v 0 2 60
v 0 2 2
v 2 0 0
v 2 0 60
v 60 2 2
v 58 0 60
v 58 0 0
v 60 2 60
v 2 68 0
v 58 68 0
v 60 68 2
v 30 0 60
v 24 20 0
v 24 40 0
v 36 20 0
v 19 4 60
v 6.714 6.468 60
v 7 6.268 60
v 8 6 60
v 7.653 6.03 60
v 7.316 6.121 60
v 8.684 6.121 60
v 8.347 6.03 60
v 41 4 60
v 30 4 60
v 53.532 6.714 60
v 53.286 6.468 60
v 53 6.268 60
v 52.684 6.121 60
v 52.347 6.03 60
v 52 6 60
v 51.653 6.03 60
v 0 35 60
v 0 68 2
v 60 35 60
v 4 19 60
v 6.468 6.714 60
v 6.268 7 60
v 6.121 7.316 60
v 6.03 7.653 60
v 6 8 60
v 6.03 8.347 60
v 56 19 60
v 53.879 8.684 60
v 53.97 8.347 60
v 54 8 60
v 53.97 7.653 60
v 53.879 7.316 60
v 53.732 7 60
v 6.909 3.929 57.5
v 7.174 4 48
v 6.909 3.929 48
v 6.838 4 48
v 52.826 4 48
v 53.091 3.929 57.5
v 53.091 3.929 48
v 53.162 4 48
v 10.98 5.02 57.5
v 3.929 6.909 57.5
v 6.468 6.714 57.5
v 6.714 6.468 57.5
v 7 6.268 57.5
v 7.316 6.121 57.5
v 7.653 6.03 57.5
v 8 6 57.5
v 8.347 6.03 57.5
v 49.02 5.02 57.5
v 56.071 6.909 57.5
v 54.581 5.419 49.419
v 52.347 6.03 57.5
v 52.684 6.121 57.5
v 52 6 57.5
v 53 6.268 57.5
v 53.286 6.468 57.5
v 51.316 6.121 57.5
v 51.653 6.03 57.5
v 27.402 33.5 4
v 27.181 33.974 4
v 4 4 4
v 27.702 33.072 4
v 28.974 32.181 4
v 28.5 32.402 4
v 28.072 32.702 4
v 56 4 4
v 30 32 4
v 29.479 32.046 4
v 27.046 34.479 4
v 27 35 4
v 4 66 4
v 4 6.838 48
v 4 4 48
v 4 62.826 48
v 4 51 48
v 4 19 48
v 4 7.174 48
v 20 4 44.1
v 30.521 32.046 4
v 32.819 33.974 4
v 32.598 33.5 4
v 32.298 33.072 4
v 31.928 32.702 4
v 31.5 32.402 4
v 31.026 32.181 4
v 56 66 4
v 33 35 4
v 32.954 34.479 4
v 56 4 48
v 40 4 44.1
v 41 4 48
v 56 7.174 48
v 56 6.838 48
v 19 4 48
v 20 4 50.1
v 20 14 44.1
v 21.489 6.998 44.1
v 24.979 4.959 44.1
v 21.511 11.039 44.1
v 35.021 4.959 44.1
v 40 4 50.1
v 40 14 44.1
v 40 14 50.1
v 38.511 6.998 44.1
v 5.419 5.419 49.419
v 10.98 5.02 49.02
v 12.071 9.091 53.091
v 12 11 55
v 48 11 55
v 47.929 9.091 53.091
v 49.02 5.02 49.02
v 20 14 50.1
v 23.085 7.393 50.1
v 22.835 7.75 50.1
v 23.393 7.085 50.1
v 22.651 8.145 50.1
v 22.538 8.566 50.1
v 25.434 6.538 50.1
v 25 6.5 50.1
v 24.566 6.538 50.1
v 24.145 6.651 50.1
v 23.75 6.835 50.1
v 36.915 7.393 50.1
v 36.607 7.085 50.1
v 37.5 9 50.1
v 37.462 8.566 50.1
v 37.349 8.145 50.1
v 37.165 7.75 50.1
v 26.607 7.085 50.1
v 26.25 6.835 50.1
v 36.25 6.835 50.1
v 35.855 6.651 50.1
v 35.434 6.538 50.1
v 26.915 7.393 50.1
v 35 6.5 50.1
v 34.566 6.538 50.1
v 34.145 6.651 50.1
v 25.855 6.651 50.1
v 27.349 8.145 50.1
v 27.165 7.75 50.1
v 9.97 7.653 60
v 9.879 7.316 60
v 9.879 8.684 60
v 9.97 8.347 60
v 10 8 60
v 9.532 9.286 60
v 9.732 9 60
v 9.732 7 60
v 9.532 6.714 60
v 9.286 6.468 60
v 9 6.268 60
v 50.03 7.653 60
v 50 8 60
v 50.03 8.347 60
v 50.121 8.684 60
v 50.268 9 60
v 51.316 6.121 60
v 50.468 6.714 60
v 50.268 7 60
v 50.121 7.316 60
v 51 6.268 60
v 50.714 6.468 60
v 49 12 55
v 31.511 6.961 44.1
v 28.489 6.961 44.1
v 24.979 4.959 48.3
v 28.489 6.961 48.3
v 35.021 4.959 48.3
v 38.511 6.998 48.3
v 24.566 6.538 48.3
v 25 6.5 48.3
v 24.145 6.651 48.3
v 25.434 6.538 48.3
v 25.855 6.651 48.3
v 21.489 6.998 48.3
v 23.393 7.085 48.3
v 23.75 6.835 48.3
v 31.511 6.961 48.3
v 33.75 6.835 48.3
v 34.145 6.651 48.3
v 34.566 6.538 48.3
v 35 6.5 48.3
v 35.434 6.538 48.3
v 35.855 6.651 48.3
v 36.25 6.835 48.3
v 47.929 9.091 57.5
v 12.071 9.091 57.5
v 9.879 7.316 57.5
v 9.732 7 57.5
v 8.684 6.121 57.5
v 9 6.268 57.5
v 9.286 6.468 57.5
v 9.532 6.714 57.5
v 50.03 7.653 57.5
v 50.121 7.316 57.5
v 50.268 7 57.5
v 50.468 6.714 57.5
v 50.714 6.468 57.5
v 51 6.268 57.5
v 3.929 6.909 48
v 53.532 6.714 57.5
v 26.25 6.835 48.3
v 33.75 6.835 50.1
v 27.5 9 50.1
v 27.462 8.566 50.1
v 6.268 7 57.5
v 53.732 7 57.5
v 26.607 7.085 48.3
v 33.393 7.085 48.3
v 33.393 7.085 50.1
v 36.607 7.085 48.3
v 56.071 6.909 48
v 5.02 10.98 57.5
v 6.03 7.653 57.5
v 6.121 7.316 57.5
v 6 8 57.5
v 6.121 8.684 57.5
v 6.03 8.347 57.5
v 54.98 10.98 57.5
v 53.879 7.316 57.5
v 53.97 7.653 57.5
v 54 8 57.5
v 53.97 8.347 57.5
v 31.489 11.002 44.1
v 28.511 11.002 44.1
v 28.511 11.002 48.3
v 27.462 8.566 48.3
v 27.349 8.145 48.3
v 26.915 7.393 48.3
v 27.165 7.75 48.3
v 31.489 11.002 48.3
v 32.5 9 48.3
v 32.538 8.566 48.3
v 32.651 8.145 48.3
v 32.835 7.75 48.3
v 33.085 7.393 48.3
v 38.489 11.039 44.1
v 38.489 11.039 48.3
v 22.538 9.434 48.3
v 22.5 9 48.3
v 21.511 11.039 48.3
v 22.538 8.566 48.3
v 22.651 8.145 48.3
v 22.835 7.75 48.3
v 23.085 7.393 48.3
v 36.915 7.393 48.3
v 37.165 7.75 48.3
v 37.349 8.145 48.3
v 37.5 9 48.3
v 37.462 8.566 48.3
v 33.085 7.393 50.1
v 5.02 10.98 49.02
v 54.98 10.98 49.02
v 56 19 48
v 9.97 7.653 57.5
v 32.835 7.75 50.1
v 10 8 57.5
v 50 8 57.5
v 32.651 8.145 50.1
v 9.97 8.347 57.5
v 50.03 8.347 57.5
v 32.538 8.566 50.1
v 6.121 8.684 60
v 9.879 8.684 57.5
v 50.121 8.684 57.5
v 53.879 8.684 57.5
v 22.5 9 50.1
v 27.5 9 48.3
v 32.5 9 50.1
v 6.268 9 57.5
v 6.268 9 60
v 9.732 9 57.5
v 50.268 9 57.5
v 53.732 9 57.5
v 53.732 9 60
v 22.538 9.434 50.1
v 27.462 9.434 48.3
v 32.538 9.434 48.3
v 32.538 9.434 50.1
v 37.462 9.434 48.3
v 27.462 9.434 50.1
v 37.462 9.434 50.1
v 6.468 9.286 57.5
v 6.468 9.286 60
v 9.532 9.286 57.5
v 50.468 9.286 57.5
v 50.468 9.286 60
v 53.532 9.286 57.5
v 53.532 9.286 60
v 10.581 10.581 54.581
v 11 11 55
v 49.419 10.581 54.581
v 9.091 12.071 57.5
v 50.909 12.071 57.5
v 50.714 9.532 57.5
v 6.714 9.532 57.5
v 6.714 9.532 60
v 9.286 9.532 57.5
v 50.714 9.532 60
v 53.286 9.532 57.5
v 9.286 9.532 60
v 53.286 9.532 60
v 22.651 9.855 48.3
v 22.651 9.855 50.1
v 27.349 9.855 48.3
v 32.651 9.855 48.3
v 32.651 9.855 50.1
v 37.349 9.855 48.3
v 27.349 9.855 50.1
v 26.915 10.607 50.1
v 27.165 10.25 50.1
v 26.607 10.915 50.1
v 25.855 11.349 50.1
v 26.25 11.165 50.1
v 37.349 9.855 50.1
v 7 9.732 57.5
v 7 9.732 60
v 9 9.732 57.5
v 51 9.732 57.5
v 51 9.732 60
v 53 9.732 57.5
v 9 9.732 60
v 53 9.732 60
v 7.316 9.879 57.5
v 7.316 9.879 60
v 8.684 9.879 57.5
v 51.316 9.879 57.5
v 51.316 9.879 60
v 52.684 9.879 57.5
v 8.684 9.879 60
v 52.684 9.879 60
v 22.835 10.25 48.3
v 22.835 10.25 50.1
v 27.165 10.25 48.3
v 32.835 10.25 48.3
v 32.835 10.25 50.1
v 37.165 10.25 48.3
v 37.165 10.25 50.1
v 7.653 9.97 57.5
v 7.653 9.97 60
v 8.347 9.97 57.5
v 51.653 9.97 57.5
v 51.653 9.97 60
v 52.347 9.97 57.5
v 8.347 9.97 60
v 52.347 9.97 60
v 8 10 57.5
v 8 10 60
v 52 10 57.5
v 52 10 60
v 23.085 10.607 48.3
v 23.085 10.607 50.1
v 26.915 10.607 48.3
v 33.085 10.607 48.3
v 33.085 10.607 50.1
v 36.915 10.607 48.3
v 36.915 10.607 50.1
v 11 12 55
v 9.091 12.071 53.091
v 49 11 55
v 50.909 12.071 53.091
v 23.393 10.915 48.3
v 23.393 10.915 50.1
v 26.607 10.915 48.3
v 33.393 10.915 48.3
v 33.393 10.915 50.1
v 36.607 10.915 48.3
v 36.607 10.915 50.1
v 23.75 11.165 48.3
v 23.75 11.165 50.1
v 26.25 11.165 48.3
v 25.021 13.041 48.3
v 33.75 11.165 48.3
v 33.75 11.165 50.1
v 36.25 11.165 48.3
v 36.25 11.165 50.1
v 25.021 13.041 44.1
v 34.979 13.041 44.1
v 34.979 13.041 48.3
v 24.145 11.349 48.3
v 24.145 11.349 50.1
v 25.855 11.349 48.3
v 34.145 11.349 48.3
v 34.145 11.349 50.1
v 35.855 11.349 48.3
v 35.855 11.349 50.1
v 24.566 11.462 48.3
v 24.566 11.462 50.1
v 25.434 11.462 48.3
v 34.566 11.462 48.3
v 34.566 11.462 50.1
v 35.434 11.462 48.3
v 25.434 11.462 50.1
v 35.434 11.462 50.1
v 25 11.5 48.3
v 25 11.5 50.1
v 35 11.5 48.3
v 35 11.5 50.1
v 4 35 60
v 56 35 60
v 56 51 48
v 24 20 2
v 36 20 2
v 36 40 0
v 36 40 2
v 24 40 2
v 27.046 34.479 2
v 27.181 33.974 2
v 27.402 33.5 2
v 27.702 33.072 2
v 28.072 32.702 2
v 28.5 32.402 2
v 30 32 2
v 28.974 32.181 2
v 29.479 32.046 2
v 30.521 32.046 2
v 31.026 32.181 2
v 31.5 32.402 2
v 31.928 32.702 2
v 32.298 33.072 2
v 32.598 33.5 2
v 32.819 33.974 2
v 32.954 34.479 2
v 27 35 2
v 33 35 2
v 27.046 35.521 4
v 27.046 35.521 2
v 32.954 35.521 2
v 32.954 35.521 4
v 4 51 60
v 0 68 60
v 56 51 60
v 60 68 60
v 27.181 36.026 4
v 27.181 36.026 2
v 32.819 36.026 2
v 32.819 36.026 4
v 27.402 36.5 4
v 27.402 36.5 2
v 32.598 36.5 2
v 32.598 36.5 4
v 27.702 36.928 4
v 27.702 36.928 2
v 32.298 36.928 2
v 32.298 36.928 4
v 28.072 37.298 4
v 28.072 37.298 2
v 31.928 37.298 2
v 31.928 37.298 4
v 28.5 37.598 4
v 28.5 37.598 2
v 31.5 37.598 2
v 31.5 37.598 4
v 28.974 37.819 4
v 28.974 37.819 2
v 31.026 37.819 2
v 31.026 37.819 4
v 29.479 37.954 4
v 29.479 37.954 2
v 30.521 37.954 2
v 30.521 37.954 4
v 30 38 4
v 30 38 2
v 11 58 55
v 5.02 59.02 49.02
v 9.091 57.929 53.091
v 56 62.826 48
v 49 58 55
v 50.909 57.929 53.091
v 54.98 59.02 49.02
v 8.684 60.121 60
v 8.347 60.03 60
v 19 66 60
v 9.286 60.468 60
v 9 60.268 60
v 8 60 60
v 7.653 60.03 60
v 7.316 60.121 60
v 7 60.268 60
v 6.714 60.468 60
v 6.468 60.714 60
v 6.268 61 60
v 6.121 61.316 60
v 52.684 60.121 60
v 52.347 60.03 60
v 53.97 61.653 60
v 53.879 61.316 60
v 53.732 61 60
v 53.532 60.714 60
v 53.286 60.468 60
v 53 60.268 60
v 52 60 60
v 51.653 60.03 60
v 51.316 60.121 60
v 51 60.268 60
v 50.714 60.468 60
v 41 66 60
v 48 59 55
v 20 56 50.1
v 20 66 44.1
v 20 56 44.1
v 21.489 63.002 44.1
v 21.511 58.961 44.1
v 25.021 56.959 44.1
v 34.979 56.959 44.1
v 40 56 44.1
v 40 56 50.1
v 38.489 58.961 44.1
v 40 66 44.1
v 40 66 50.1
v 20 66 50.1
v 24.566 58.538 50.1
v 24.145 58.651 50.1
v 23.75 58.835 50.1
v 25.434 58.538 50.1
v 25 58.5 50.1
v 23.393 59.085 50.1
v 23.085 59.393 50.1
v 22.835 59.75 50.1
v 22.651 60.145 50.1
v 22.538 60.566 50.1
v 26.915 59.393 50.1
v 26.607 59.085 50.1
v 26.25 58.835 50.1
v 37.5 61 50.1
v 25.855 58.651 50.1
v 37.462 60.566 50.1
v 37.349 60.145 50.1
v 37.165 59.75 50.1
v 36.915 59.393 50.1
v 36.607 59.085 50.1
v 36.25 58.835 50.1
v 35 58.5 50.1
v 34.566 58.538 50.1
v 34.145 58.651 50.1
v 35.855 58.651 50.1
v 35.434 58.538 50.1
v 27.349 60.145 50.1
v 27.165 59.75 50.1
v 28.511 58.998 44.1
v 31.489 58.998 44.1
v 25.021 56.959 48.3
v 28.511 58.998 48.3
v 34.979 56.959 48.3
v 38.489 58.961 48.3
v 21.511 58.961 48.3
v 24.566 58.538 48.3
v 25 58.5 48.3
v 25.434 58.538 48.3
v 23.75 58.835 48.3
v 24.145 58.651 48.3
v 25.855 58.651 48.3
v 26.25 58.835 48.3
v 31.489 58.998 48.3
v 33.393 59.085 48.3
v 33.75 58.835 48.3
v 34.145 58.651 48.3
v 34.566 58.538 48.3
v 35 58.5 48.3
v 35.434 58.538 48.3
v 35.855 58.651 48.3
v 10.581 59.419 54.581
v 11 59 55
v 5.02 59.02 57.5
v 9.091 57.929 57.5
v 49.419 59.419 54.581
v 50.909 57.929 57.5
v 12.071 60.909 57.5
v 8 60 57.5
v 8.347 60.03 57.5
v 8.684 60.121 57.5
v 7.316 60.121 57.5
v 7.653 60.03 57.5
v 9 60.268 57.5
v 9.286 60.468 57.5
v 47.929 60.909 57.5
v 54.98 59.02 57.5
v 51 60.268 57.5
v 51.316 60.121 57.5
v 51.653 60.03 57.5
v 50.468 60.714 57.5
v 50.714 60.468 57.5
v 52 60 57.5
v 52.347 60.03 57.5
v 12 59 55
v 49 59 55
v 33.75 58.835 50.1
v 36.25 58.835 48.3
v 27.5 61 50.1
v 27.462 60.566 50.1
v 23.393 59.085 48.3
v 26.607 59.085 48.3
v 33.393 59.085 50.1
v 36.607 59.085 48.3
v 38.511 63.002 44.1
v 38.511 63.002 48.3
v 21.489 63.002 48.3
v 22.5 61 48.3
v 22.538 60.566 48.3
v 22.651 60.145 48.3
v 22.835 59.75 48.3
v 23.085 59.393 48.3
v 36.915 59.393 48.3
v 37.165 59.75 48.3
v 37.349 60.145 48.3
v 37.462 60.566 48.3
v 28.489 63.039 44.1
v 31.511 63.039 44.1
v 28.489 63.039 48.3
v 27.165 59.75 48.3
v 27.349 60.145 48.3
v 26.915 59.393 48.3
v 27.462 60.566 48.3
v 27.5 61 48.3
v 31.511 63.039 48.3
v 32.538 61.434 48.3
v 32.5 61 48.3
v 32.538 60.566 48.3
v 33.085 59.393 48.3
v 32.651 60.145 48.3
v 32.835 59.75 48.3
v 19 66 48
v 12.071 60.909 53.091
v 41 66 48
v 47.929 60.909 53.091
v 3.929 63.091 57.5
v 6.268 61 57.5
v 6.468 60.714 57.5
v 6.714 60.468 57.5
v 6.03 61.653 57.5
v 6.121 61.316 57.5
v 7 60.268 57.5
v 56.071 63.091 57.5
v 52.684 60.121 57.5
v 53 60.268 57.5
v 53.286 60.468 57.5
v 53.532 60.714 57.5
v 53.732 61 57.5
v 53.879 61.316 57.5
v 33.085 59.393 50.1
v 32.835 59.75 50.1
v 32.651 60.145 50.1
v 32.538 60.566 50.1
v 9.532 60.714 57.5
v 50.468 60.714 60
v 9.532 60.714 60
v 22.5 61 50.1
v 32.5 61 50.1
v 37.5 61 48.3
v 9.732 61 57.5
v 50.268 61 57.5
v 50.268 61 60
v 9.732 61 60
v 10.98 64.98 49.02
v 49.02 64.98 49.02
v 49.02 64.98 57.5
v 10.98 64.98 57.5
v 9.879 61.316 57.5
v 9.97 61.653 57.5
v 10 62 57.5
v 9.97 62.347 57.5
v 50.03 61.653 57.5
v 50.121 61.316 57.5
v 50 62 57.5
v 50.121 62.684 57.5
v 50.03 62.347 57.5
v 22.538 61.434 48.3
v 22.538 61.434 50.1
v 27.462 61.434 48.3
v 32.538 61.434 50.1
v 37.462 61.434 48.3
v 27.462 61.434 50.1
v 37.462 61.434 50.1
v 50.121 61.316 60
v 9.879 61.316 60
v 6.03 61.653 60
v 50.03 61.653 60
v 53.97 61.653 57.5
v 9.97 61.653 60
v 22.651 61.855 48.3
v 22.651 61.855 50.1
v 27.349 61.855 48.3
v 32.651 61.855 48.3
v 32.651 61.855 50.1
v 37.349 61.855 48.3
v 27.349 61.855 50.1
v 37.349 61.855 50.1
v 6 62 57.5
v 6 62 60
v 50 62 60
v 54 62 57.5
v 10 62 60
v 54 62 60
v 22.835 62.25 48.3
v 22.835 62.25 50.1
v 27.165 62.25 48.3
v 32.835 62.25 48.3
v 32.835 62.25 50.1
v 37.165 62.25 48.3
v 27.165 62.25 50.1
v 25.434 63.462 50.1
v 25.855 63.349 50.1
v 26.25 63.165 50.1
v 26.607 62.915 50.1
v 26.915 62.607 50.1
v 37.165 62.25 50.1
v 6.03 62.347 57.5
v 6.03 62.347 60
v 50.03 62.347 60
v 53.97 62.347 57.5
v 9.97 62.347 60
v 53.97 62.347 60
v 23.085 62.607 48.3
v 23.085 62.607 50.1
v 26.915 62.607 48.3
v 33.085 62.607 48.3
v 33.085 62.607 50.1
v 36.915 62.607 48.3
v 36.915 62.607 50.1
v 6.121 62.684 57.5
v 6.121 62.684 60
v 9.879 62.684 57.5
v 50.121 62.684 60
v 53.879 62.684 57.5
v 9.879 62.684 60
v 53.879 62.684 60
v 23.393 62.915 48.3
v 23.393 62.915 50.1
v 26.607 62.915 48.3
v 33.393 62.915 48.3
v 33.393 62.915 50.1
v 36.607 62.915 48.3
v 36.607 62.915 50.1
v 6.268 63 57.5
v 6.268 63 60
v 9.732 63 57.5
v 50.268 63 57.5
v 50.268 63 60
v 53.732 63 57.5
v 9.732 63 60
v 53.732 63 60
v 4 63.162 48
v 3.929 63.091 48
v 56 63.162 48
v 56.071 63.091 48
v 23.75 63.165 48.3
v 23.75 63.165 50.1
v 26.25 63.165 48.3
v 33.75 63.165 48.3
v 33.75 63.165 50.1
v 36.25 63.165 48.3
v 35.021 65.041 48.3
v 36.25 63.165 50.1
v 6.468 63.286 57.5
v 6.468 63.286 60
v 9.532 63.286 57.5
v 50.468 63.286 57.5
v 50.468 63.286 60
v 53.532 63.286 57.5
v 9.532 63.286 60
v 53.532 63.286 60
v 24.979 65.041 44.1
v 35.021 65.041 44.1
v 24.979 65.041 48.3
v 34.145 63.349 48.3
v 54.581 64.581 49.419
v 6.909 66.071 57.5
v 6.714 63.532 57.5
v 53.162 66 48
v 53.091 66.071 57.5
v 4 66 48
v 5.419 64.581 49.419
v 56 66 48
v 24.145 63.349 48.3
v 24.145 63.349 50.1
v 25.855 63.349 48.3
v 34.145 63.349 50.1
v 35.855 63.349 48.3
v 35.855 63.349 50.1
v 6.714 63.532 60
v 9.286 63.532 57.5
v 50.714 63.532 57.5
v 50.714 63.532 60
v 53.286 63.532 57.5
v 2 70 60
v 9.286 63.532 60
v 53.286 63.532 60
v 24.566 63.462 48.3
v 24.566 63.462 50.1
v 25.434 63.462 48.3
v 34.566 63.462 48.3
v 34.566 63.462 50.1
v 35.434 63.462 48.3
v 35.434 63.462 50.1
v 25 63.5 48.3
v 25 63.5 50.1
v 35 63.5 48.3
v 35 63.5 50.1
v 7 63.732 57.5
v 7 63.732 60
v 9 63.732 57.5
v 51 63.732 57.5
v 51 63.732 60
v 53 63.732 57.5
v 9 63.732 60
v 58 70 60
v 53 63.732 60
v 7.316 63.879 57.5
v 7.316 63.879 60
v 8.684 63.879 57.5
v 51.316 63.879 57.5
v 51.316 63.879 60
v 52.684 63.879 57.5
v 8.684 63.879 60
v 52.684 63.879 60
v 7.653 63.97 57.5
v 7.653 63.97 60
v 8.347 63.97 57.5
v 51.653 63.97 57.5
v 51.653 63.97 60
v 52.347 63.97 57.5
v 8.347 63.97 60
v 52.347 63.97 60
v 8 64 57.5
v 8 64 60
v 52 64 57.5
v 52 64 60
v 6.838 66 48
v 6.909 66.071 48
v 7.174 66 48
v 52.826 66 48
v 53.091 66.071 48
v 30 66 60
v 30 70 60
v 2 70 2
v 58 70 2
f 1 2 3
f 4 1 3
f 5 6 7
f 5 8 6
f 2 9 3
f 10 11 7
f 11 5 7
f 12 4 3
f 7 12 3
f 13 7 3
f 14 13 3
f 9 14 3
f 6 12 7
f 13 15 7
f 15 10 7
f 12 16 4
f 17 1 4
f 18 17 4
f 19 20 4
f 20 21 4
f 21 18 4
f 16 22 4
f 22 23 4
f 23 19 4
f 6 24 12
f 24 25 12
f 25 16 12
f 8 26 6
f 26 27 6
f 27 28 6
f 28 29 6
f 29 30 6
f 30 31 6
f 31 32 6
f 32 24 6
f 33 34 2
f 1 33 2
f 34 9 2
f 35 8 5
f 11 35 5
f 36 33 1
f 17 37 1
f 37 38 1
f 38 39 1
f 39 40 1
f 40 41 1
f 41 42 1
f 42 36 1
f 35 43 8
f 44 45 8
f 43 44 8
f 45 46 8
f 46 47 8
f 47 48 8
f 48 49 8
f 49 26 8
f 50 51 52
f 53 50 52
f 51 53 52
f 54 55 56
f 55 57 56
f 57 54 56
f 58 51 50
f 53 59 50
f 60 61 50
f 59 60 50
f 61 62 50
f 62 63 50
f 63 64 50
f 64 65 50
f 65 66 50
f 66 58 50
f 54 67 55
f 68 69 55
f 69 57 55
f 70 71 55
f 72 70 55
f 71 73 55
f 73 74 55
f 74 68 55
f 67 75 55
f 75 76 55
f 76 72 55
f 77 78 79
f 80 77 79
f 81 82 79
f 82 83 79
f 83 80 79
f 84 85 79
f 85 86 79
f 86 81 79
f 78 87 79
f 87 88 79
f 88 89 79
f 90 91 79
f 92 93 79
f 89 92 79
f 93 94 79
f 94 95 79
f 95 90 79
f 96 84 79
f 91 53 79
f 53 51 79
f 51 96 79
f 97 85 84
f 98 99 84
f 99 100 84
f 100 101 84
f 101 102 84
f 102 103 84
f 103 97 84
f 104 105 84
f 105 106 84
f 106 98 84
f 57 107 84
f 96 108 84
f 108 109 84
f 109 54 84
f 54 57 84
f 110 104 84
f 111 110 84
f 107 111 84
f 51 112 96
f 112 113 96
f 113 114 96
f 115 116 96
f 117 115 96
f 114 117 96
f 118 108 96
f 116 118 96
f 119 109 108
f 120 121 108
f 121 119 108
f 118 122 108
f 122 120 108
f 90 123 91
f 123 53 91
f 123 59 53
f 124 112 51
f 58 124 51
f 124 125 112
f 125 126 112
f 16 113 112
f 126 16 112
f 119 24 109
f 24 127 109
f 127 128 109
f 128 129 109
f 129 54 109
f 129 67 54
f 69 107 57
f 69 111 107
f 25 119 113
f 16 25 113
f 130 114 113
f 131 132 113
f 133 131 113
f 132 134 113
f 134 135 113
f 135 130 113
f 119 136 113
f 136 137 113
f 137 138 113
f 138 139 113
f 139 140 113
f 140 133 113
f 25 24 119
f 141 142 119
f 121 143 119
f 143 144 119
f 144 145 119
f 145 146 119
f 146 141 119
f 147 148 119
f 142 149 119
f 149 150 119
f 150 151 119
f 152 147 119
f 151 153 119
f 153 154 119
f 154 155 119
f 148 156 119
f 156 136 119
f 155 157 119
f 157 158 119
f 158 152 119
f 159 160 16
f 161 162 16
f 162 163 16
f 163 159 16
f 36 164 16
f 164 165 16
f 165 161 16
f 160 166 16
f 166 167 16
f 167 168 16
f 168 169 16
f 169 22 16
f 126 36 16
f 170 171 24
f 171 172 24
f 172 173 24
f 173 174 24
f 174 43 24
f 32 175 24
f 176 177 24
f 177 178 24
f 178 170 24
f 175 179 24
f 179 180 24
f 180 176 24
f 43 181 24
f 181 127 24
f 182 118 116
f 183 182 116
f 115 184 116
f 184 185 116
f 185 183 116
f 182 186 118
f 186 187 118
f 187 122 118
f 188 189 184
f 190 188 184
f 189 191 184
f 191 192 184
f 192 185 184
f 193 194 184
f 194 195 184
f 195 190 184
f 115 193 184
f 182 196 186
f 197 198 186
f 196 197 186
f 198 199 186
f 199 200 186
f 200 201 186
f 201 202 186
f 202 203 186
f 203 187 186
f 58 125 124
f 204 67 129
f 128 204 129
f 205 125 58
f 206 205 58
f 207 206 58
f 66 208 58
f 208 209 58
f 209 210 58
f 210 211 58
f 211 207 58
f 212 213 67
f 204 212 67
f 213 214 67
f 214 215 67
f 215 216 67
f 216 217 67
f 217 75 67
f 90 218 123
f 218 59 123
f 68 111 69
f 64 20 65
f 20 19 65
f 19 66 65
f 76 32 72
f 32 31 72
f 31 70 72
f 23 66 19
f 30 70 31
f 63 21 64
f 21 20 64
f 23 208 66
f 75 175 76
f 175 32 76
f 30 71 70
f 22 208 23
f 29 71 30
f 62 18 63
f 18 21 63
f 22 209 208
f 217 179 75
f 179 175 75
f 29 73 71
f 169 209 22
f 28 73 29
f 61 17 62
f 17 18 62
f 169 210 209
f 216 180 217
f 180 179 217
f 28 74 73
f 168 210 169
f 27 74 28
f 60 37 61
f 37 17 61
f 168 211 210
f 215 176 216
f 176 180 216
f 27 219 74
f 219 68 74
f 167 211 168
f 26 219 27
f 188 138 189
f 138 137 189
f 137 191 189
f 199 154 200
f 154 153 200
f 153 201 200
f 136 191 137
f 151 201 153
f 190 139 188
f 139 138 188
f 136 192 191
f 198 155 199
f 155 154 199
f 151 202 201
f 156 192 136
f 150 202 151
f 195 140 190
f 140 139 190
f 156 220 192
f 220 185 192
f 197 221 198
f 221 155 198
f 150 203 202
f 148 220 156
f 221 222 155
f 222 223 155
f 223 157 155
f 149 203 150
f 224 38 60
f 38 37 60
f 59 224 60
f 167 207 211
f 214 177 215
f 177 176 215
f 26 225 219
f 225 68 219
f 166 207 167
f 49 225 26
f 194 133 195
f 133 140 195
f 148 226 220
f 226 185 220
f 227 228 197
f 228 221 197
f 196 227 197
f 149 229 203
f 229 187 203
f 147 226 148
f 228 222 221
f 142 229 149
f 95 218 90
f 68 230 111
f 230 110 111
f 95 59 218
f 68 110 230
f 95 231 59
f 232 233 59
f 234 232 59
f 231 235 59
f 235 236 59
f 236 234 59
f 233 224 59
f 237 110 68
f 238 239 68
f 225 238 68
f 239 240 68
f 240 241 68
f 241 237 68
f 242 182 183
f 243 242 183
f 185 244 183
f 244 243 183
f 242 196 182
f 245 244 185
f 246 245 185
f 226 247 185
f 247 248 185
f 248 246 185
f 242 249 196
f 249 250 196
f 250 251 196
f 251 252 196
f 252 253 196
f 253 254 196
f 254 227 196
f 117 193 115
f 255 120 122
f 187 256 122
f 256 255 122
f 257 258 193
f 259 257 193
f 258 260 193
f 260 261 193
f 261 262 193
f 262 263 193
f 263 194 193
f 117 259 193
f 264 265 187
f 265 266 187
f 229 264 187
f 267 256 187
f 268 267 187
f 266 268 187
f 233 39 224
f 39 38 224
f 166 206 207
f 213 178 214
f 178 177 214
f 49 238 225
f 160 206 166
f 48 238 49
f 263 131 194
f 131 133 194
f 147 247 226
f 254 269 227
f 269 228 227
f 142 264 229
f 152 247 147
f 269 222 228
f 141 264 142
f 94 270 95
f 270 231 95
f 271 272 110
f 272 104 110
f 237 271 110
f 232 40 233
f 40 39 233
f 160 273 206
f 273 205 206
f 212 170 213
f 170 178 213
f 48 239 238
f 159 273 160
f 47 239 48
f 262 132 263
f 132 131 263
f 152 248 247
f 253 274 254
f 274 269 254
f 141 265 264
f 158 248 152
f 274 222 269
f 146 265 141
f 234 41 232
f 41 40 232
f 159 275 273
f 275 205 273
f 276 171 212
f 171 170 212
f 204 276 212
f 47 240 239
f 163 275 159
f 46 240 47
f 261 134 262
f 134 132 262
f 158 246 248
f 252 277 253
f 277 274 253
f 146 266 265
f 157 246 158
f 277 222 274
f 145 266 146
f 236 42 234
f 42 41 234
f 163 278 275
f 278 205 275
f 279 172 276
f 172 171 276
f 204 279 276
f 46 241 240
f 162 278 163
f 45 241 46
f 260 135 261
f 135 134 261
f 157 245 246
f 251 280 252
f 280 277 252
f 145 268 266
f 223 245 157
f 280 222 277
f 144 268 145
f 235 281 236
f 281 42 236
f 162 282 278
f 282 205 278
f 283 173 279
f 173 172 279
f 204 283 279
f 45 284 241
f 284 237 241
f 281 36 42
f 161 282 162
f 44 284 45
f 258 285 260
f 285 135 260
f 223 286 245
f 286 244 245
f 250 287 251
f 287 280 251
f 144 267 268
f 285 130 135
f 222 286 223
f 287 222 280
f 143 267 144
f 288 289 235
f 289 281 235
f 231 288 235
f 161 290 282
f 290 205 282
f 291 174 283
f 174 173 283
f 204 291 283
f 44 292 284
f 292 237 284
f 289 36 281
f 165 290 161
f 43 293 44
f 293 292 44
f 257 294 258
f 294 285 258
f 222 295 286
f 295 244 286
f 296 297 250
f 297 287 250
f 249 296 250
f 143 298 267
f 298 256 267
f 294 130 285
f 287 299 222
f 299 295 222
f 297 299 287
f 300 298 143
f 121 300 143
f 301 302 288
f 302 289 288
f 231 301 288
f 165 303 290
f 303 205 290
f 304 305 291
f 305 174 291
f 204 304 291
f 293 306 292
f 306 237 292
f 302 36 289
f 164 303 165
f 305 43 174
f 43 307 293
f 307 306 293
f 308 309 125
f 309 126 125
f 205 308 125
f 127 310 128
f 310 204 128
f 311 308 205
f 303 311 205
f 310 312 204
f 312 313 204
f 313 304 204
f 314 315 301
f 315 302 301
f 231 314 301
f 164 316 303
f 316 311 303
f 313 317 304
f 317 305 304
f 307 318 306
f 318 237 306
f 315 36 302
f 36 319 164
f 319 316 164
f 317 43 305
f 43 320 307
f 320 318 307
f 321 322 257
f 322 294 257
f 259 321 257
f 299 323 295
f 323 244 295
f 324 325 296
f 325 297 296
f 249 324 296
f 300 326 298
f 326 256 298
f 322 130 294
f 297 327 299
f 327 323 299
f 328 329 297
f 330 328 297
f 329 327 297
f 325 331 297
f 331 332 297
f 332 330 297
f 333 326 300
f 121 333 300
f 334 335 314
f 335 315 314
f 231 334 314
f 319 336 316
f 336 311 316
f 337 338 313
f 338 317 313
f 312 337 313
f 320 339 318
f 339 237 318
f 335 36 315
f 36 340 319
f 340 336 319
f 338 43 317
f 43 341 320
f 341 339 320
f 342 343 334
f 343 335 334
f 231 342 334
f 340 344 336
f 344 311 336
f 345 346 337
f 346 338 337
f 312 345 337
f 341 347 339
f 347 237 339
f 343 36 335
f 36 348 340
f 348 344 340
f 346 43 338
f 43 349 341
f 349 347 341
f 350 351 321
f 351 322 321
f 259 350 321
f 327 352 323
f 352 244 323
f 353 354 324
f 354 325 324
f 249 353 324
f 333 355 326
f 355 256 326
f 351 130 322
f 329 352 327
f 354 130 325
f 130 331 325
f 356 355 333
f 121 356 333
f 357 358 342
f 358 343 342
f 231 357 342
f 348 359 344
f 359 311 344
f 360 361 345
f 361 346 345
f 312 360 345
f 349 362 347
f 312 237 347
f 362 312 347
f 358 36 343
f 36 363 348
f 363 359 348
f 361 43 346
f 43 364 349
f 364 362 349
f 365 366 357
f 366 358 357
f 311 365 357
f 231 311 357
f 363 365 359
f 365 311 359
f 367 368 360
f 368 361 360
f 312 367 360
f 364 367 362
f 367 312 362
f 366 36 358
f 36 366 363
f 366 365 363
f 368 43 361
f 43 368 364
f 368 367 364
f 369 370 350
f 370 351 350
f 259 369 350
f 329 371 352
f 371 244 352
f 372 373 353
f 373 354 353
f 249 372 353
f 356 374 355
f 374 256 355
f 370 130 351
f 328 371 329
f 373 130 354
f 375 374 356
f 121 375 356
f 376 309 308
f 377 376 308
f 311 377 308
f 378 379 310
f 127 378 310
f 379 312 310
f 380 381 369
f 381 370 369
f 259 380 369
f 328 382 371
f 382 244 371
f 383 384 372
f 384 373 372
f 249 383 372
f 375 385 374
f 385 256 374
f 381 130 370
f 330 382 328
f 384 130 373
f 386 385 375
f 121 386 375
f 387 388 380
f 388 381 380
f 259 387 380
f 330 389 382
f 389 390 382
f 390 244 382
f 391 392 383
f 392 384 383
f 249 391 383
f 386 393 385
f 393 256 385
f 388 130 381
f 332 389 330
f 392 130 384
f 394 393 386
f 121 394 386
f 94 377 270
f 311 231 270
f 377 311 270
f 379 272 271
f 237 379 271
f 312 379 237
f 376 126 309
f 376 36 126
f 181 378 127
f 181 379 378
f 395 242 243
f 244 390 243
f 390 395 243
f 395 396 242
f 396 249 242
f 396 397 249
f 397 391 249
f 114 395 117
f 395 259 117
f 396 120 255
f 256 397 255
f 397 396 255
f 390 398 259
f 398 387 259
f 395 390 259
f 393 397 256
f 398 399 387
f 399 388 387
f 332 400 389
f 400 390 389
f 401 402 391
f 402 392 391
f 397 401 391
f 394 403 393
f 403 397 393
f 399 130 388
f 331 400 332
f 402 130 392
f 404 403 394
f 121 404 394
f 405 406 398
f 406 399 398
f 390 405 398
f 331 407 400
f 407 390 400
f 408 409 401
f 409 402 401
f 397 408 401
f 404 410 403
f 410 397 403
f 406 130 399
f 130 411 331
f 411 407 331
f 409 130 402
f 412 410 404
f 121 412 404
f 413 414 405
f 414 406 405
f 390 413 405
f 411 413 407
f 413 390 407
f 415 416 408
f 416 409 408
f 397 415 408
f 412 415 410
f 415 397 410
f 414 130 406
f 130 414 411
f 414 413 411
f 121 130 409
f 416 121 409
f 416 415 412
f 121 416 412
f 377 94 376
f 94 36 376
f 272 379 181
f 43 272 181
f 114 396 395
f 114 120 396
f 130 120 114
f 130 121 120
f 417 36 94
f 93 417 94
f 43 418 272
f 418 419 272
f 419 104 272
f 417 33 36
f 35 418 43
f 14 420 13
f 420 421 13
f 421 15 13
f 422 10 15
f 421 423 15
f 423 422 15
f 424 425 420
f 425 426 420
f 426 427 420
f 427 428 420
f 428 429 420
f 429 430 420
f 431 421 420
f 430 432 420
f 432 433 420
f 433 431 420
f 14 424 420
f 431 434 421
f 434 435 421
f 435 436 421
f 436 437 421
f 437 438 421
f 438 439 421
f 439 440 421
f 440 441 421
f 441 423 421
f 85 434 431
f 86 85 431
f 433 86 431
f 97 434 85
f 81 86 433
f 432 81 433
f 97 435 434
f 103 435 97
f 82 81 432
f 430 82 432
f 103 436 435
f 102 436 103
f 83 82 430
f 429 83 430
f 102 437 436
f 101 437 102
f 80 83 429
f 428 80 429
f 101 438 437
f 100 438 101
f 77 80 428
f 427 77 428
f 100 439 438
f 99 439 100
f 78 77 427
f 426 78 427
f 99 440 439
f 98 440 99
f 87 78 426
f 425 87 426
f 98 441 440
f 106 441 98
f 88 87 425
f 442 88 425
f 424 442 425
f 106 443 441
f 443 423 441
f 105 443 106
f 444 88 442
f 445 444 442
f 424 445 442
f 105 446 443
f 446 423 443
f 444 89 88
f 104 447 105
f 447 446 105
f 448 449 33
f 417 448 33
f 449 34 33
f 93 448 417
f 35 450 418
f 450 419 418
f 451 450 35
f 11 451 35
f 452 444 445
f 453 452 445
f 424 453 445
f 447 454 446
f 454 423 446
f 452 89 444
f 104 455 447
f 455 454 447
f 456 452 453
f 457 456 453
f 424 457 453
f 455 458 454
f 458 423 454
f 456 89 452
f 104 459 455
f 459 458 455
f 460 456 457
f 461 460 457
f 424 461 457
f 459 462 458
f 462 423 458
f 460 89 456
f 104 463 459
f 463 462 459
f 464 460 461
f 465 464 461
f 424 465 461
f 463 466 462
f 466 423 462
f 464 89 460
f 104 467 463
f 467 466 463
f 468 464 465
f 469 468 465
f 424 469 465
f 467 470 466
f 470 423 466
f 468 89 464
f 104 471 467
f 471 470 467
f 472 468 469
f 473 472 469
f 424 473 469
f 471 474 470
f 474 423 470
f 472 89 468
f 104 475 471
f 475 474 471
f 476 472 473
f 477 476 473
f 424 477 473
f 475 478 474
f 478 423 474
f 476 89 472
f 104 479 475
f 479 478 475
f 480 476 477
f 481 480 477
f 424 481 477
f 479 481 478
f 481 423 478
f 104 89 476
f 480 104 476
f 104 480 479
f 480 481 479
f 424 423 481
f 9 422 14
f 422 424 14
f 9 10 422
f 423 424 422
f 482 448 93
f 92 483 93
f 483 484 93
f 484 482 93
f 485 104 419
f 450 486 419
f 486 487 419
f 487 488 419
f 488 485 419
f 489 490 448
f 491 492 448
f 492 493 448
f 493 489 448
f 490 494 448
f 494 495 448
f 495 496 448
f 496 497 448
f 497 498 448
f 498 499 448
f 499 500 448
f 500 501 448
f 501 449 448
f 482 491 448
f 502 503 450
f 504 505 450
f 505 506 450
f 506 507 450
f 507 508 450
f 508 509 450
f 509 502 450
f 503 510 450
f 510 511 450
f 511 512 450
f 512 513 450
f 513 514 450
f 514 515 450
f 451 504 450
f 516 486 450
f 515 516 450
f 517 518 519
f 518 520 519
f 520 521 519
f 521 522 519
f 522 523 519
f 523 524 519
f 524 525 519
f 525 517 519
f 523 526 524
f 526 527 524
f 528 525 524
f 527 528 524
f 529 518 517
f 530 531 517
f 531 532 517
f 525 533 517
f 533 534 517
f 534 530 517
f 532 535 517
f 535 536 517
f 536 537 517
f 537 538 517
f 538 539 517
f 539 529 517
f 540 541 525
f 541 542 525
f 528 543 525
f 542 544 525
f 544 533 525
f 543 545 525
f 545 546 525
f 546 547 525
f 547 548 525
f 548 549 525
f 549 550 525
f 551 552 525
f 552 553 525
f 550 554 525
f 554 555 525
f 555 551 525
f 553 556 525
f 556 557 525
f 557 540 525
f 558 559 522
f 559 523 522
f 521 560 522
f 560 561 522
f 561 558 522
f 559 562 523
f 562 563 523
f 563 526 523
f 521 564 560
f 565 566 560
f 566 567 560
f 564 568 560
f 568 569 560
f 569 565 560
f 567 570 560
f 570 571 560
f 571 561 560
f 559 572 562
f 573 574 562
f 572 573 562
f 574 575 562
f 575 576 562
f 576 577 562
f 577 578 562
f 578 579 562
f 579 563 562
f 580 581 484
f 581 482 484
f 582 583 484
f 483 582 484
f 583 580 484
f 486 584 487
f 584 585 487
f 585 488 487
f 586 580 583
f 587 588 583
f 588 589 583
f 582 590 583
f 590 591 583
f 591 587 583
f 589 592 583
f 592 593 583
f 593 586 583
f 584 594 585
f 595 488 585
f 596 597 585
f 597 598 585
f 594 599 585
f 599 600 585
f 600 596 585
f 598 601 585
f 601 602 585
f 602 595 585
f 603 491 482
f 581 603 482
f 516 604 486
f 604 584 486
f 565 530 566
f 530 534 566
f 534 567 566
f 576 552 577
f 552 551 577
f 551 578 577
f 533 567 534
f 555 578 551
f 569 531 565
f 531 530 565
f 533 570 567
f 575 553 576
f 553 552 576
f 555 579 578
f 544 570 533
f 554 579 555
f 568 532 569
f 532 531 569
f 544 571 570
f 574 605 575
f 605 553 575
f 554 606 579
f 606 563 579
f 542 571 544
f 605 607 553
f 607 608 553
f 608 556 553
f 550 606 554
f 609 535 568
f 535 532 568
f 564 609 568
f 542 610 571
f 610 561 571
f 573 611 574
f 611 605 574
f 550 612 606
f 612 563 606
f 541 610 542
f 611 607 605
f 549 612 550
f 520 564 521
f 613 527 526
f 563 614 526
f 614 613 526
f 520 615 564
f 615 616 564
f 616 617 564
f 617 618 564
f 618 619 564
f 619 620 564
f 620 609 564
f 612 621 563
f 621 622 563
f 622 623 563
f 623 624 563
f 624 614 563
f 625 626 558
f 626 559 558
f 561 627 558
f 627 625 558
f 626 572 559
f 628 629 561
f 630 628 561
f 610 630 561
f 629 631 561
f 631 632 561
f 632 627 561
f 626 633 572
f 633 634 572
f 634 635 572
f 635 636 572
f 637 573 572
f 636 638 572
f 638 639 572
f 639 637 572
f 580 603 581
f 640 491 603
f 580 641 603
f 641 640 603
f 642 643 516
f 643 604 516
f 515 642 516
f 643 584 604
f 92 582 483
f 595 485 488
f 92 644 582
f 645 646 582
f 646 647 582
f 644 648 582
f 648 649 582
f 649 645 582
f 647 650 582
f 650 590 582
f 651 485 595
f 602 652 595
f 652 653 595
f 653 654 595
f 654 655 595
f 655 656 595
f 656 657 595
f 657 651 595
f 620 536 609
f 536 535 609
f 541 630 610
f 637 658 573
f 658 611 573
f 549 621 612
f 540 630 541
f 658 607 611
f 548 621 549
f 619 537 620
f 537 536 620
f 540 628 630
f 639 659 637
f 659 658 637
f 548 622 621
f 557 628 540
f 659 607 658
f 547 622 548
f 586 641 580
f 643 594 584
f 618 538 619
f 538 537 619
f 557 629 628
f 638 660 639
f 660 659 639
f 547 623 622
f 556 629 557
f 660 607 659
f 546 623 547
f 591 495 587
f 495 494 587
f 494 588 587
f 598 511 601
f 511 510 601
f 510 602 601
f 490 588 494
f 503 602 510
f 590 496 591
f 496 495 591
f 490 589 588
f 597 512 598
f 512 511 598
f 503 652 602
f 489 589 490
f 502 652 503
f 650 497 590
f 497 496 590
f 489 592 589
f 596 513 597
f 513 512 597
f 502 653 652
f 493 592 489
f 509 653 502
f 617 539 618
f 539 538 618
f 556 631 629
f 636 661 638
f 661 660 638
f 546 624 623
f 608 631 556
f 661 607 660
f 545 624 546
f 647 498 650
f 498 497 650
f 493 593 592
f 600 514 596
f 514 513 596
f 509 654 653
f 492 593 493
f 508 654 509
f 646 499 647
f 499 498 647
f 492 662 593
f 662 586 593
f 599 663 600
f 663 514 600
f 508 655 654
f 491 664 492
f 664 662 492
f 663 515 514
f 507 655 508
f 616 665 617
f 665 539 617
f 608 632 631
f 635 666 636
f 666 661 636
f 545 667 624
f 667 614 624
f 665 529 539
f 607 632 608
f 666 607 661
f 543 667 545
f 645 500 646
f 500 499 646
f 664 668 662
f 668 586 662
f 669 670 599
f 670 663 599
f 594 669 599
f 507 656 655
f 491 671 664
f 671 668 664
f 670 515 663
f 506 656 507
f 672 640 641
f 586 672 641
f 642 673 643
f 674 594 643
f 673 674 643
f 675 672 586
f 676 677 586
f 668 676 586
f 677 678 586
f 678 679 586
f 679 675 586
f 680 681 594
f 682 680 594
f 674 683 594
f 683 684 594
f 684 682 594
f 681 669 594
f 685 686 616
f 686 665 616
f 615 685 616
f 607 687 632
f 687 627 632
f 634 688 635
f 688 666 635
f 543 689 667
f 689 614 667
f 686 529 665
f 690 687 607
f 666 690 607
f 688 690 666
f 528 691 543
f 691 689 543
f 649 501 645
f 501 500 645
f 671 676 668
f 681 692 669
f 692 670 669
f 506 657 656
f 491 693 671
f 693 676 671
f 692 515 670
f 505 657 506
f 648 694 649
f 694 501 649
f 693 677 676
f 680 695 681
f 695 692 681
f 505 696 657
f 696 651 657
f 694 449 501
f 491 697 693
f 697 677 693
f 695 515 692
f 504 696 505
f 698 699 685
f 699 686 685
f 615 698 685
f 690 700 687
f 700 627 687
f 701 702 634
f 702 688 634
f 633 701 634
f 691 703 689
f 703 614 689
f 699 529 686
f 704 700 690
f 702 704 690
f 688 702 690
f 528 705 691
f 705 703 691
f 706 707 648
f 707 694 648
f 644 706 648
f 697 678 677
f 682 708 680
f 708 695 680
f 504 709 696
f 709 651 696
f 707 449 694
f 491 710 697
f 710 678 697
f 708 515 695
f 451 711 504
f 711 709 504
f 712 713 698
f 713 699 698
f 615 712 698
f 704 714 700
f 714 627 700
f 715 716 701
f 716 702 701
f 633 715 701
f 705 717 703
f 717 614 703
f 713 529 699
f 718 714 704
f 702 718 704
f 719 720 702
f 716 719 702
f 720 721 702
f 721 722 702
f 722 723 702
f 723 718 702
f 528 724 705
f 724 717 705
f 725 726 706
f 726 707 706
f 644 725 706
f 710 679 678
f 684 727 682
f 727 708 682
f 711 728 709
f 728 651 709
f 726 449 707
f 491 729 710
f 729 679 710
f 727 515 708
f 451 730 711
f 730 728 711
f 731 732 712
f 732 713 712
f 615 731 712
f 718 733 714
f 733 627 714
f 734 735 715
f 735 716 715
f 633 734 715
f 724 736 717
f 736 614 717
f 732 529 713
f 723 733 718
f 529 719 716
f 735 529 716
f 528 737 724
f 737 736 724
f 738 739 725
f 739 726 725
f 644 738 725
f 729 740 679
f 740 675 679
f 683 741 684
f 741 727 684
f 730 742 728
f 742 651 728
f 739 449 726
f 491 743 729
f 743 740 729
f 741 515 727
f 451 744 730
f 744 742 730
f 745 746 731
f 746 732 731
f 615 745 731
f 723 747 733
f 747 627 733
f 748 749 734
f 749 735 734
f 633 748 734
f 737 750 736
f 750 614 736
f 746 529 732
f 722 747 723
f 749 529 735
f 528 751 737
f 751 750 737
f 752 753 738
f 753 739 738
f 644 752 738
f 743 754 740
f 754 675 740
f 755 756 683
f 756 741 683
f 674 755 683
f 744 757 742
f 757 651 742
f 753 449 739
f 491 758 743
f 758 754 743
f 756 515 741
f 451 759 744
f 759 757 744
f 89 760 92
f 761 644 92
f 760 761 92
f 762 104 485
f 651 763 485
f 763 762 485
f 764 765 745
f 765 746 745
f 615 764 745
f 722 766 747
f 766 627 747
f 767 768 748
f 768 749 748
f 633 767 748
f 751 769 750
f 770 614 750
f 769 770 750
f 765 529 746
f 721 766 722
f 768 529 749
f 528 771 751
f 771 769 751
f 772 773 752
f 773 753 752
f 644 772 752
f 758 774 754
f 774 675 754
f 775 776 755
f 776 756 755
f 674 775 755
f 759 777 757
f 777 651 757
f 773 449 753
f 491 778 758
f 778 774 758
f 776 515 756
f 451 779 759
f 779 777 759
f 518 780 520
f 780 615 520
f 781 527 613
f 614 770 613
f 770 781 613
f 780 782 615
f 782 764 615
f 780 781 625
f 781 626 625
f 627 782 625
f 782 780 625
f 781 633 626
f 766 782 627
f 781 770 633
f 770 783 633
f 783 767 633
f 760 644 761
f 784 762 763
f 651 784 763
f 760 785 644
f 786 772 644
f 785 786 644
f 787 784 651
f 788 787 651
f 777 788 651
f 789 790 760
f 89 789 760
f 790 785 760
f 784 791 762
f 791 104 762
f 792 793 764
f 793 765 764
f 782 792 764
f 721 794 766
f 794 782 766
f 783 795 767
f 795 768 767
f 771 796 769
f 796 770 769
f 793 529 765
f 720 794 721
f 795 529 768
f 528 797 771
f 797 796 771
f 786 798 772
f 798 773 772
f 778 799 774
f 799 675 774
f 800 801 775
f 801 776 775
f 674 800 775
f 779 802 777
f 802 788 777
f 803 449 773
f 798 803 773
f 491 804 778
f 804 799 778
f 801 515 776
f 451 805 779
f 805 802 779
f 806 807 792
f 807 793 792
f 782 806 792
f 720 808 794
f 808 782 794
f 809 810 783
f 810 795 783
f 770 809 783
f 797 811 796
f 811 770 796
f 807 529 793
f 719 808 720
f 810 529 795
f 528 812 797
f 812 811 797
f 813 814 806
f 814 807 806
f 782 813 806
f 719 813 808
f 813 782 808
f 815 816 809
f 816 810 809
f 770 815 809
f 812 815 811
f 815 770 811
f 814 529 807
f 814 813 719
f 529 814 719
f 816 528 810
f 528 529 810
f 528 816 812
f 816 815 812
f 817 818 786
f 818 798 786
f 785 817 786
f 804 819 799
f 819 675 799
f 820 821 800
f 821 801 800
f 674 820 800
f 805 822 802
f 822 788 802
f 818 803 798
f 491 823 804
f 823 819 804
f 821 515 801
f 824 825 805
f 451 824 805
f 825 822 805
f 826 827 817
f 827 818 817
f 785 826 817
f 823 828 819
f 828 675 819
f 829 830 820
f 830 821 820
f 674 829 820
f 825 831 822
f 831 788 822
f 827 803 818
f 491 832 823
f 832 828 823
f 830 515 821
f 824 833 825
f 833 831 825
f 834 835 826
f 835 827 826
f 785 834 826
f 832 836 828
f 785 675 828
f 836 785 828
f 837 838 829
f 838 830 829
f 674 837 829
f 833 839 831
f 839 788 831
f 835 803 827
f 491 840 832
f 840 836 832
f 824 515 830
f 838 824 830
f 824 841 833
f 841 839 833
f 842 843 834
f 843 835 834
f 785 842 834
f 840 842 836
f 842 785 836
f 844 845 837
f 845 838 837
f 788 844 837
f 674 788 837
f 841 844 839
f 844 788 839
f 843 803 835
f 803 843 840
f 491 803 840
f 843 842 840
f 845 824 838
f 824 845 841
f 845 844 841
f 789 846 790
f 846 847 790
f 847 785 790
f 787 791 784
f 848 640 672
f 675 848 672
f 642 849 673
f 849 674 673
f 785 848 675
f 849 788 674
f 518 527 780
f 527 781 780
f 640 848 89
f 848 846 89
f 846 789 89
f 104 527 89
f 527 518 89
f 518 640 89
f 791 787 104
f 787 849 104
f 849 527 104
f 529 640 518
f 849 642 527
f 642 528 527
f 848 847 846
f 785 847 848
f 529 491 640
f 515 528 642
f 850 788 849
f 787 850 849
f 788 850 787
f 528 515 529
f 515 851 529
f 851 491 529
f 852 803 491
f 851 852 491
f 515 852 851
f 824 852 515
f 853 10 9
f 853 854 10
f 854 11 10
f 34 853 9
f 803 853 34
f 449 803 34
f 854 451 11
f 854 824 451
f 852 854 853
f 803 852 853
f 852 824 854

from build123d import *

# Parameters (mm, degrees)
SKIZZE1_W                          = 60
SKIZZE1_H                          = 70
GRUNDK_RPER_DEPTH                  = 60
FASE2_SIZE                         = 2
WANDUNG1_T                         = -4
SKIZZE2_W                          = 20
SKIZZE2_H                          = 6
AUFSATZ_LINEAR_AUSTRAGEN1_DEPTH    = 10
BOHRUNGEN_SERVO_REACH              = 106.929
SKIZZE3_R                          = 2.5
SECHSKANT_START                    = -4.2
SKIZZE5_R                          = 2.5
SKIZZE5_R_2                        = 2
SECHSKANT_DEPTH                    = 4.2
AUSPARUNGEN_DEPTH                  = 5
FASE3_SIZE                         = 7
BOHRUNGENHALTERUNG_REACH           = 112
SKIZZE8_R                          = 2
SECHSKANT_START_2                  = -9.5
SECHSKANT_DECKEL_DEPTH             = 9.5
BOHRUNG_VERSCHRAUBUNG_DECKEL_REACH = 112
SKIZZE11_R                         = 3
SKIZZE14_W                         = 12
SKIZZE14_H                         = 20
SKIZZE14_R                         = 0.883929471
VERTIEFUNG_DECKEL_DEPTH            = 2


with BuildPart() as part:
    # Skizze1 → Grundkörper (new body)
    with BuildSketch(Plane.XY):
        with Locations((30, 35)):
            Rectangle(SKIZZE1_W, SKIZZE1_H)
    extrude(amount=GRUNDK_RPER_DEPTH)

    # Fase2
    fase2_edges = [part.edges().sort_by_distance(p)[0] for p in [
        (30, 70, 0),
        (60, 35, 0),
        (0, 35, 0),
        (0, 70, 30),
        (60, 70, 30),
        (60, 0, 30),
        (0, 0, 30),
    ]]
    chamfer(fase2_edges, length=FASE2_SIZE)

    # Wandung1
    wandung1_openings = [part.faces().sort_by_distance(p)[0] for p in [
        (30, 35, 60),
    ]]
    offset(amount=WANDUNG1_T, openings=wandung1_openings)

    # Skizze2 → Aufsatz-Linear austragen1 (add)
    with BuildSketch(Plane(origin=(0, 4, 0), x_dir=(1, 0, 0), z_dir=(0, 1, 0))):
        with Locations((30, -47.1)):
            Rectangle(SKIZZE2_W, SKIZZE2_H)
    aufsatz_linear_austragen1 = extrude(amount=AUFSATZ_LINEAR_AUSTRAGEN1_DEPTH)

    # Spiegeln1: Aufsatz-Linear austragen1 across plane
    add(aufsatz_linear_austragen1.mirror(Plane(origin=(0, 35, 0), x_dir=(0, 0, 1), z_dir=(0, -1, 0))))

    # Skizze3 → Bohrungen Servo (cut, up to next)
    with BuildSketch(Plane.XY.offset(50.1), mode=Mode.PRIVATE) as bohrungen_servo_sk1:
        with Locations((25, 9)):
            Circle(SKIZZE3_R)
    bohrungen_servo_tool1 = extrude(bohrungen_servo_sk1.sketch, amount=-BOHRUNGEN_SERVO_REACH, mode=Mode.PRIVATE) & part.part
    # Skizze3 → Bohrungen Servo (cut, up to next)
    with BuildSketch(Plane.XY.offset(50.1), mode=Mode.PRIVATE) as bohrungen_servo_sk2:
        with Locations((35, 9)):
            Circle(SKIZZE3_R)
    bohrungen_servo_tool2 = extrude(bohrungen_servo_sk2.sketch, amount=-BOHRUNGEN_SERVO_REACH, mode=Mode.PRIVATE) & part.part
    # Skizze3 → Bohrungen Servo (cut, up to next)
    with BuildSketch(Plane.XY.offset(50.1), mode=Mode.PRIVATE) as bohrungen_servo_sk3:
        with Locations((35, 61)):
            Circle(SKIZZE3_R)
    bohrungen_servo_tool3 = extrude(bohrungen_servo_sk3.sketch, amount=-BOHRUNGEN_SERVO_REACH, mode=Mode.PRIVATE) & part.part
    # Skizze3 → Bohrungen Servo (cut, up to next)
    with BuildSketch(Plane.XY.offset(50.1), mode=Mode.PRIVATE) as bohrungen_servo_sk4:
        with Locations((25, 61)):
            Circle(SKIZZE3_R)
    bohrungen_servo_tool4 = extrude(bohrungen_servo_sk4.sketch, amount=-BOHRUNGEN_SERVO_REACH, mode=Mode.PRIVATE) & part.part
    add(bohrungen_servo_tool1.solids().sort_by_distance((25, 9, 50.1))[0], mode=Mode.SUBTRACT)
    add(bohrungen_servo_tool2.solids().sort_by_distance((35, 9, 50.1))[0], mode=Mode.SUBTRACT)
    add(bohrungen_servo_tool3.solids().sort_by_distance((35, 61, 50.1))[0], mode=Mode.SUBTRACT)
    add(bohrungen_servo_tool4.solids().sort_by_distance((25, 61, 50.1))[0], mode=Mode.SUBTRACT)

    # Skizze5 → Sechskant (cut)
    # profile 1 of 4: a face of its own
    with BuildSketch(Plane(origin=(0, 0, 44.1), x_dir=(-1, 0, 0), z_dir=(0, 0, -1)).offset(SECHSKANT_START)):
        Polygon((-34.978654144, 13.041395512), (-38.489278252, 11.03918381), (-38.510624109, 6.997788298), (-35.021345856, 4.958604488), (-31.510721748, 6.96081619), (-31.489375891, 11.002211702), align=None)
        with Locations(Location((-35, 9, 0), (0, 0, 180))):
            Circle(SKIZZE5_R, mode=Mode.SUBTRACT)
    # profile 2 of 4: a face of its own
    with BuildSketch(Plane(origin=(0, 0, 44.1), x_dir=(-1, 0, 0), z_dir=(0, 0, -1)).offset(SECHSKANT_START)):
        Polygon((-31.489375891, 58.997788298), (-34.978654144, 56.958604488), (-38.489278252, 58.96081619), (-38.510624109, 63.002211702), (-35.021345856, 65.041395512), (-31.510721748, 63.03918381), align=None)
        with Locations((-35, 61)):
            Circle(SKIZZE5_R, mode=Mode.SUBTRACT)
    # profile 3 of 4: a face of its own
    with BuildSketch(Plane(origin=(0, 0, 44.1), x_dir=(-1, 0, 0), z_dir=(0, 0, -1)).offset(SECHSKANT_START)):
        Polygon((-28.489278252, 63.03918381), (-28.510624109, 58.997788298), (-25.021345856, 56.958604488), (-21.510721748, 58.96081619), (-21.489375891, 63.002211702), (-24.978654144, 65.041395512), align=None)
        with Locations((-25, 61)):
            Circle(SKIZZE5_R, mode=Mode.SUBTRACT)
    # profile 4 of 4: a face of its own
    with BuildSketch(Plane(origin=(0, 0, 44.1), x_dir=(-1, 0, 0), z_dir=(0, 0, -1)).offset(SECHSKANT_START)):
        Polygon((-28.510624109, 11.002211702), (-25.021345856, 13.041395512), (-21.510721748, 11.03918381), (-21.489375891, 6.997788298), (-24.978654144, 4.958604488), (-28.489278252, 6.96081619), align=None)
        with Locations((-25, 9)):
            Circle(SKIZZE5_R_2, mode=Mode.SUBTRACT)
    extrude(amount=SECHSKANT_DEPTH, mode=Mode.SUBTRACT)

    # Skizze7 → Ausparungen (add)
    with BuildSketch(Plane.XY.offset(60)):
        Polygon((56, 4), (41, 4), (56, 19), align=None)
        Polygon((19, 4), (4, 19), (4, 4), align=None)
        Polygon((4, 66), (19, 66), (4, 51), align=None)
        Polygon((41, 66), (56, 51), (56, 66), align=None)
    extrude(amount=-AUSPARUNGEN_DEPTH)

    # Fase3
    fase3_edges = [part.edges().sort_by_distance(p)[0] for p in [
        (56, 11.5, 55),
        (48.5, 4, 55),
        (11.5, 4, 55),
        (4, 11.5, 55),
        (4, 58.5, 55),
        (11.5, 66, 55),
        (48.5, 66, 55),
        (56, 58.5, 55),
    ]]
    chamfer(fase3_edges, length=FASE3_SIZE)

    # Skizze8 → BohrungenHalterung (cut, up to next)
    with BuildSketch(Plane.XY.offset(60), mode=Mode.PRIVATE) as bohrungenhalterung_sk1:
        with Locations((52, 8)):
            Circle(SKIZZE8_R)
    bohrungenhalterung_tool1 = extrude(bohrungenhalterung_sk1.sketch, amount=-BOHRUNGENHALTERUNG_REACH, mode=Mode.PRIVATE) & part.part
    # Skizze8 → BohrungenHalterung (cut, up to next)
    with BuildSketch(Plane.XY.offset(60), mode=Mode.PRIVATE) as bohrungenhalterung_sk2:
        with Locations(Location((8, 8, 0), (0, 0, 45))):
            Circle(SKIZZE8_R)
    bohrungenhalterung_tool2 = extrude(bohrungenhalterung_sk2.sketch, amount=-BOHRUNGENHALTERUNG_REACH, mode=Mode.PRIVATE) & part.part
    # Skizze8 → BohrungenHalterung (cut, up to next)
    with BuildSketch(Plane.XY.offset(60), mode=Mode.PRIVATE) as bohrungenhalterung_sk3:
        with Locations((8, 62)):
            Circle(SKIZZE8_R)
    bohrungenhalterung_tool3 = extrude(bohrungenhalterung_sk3.sketch, amount=-BOHRUNGENHALTERUNG_REACH, mode=Mode.PRIVATE) & part.part
    # Skizze8 → BohrungenHalterung (cut, up to next)
    with BuildSketch(Plane.XY.offset(60), mode=Mode.PRIVATE) as bohrungenhalterung_sk4:
        with Locations(Location((52, 62, 0), (0, 0, 45))):
            Circle(SKIZZE8_R)
    bohrungenhalterung_tool4 = extrude(bohrungenhalterung_sk4.sketch, amount=-BOHRUNGENHALTERUNG_REACH, mode=Mode.PRIVATE) & part.part
    add(bohrungenhalterung_tool1.solids().sort_by_distance((52, 8, 60))[0], mode=Mode.SUBTRACT)
    add(bohrungenhalterung_tool2.solids().sort_by_distance((8, 8, 60))[0], mode=Mode.SUBTRACT)
    add(bohrungenhalterung_tool3.solids().sort_by_distance((8, 62, 60))[0], mode=Mode.SUBTRACT)
    add(bohrungenhalterung_tool4.solids().sort_by_distance((52, 62, 60))[0], mode=Mode.SUBTRACT)

    # Skizze13 → Sechskant Deckel (cut)
    with BuildSketch(Plane.XY.offset(57.5).offset(SECHSKANT_START_2)):
        Polygon((50.909166509, 57.928953988), (54.98021252, 59.01978748), (56.071046012, 63.090833491), (53.090833491, 66.071046012), (49.01978748, 64.98021252), (47.928953988, 60.909166509), align=None)
        Polygon((49.01978748, 5.01978748), (53.090833491, 3.928953988), (56.071046012, 6.909166509), (54.98021252, 10.98021252), (50.909166509, 12.071046012), (47.928953988, 9.090833491), align=None)
        Polygon((3.928953988, 6.909166509), (6.909166509, 3.928953988), (10.98021252, 5.01978748), (12.071046012, 9.090833491), (9.090833491, 12.071046012), (5.01978748, 10.98021252), align=None)
        Polygon((5.01978748, 59.01978748), (9.090833491, 57.928953988), (12.071046012, 60.909166509), (10.98021252, 64.98021252), (6.909166509, 66.071046012), (3.928953988, 63.090833491), align=None)
    extrude(amount=SECHSKANT_DECKEL_DEPTH, mode=Mode.SUBTRACT)

    # Skizze11 → Bohrung Verschraubung Deckel (cut, up to next)
    with BuildSketch(Plane(origin=(0, 0, 0), x_dir=(-1, 0, 0), z_dir=(0, 0, -1)), mode=Mode.PRIVATE) as bohrung_verschraubung_deckel_sk1:
        with Locations((-30, 35)):
            Circle(SKIZZE11_R)
    bohrung_verschraubung_deckel_tool1 = extrude(bohrung_verschraubung_deckel_sk1.sketch, amount=-BOHRUNG_VERSCHRAUBUNG_DECKEL_REACH, mode=Mode.PRIVATE) & part.part
    add(bohrung_verschraubung_deckel_tool1.solids().sort_by_distance((30, 35, 0))[0], mode=Mode.SUBTRACT)

    # Skizze14 → Vertiefung Deckel (cut)
    with BuildSketch(Plane(origin=(0, 0, 0), x_dir=(-1, 0, 0), z_dir=(0, 0, -1))):
        with Locations((-30, 30)):
            Rectangle(SKIZZE14_W, SKIZZE14_H)
        with Locations((-30, 35)):
            Circle(SKIZZE14_R, mode=Mode.SUBTRACT)
    extrude(amount=-VERTIEFUNG_DECKEL_DEPTH, mode=Mode.SUBTRACT)


solid = part.part
